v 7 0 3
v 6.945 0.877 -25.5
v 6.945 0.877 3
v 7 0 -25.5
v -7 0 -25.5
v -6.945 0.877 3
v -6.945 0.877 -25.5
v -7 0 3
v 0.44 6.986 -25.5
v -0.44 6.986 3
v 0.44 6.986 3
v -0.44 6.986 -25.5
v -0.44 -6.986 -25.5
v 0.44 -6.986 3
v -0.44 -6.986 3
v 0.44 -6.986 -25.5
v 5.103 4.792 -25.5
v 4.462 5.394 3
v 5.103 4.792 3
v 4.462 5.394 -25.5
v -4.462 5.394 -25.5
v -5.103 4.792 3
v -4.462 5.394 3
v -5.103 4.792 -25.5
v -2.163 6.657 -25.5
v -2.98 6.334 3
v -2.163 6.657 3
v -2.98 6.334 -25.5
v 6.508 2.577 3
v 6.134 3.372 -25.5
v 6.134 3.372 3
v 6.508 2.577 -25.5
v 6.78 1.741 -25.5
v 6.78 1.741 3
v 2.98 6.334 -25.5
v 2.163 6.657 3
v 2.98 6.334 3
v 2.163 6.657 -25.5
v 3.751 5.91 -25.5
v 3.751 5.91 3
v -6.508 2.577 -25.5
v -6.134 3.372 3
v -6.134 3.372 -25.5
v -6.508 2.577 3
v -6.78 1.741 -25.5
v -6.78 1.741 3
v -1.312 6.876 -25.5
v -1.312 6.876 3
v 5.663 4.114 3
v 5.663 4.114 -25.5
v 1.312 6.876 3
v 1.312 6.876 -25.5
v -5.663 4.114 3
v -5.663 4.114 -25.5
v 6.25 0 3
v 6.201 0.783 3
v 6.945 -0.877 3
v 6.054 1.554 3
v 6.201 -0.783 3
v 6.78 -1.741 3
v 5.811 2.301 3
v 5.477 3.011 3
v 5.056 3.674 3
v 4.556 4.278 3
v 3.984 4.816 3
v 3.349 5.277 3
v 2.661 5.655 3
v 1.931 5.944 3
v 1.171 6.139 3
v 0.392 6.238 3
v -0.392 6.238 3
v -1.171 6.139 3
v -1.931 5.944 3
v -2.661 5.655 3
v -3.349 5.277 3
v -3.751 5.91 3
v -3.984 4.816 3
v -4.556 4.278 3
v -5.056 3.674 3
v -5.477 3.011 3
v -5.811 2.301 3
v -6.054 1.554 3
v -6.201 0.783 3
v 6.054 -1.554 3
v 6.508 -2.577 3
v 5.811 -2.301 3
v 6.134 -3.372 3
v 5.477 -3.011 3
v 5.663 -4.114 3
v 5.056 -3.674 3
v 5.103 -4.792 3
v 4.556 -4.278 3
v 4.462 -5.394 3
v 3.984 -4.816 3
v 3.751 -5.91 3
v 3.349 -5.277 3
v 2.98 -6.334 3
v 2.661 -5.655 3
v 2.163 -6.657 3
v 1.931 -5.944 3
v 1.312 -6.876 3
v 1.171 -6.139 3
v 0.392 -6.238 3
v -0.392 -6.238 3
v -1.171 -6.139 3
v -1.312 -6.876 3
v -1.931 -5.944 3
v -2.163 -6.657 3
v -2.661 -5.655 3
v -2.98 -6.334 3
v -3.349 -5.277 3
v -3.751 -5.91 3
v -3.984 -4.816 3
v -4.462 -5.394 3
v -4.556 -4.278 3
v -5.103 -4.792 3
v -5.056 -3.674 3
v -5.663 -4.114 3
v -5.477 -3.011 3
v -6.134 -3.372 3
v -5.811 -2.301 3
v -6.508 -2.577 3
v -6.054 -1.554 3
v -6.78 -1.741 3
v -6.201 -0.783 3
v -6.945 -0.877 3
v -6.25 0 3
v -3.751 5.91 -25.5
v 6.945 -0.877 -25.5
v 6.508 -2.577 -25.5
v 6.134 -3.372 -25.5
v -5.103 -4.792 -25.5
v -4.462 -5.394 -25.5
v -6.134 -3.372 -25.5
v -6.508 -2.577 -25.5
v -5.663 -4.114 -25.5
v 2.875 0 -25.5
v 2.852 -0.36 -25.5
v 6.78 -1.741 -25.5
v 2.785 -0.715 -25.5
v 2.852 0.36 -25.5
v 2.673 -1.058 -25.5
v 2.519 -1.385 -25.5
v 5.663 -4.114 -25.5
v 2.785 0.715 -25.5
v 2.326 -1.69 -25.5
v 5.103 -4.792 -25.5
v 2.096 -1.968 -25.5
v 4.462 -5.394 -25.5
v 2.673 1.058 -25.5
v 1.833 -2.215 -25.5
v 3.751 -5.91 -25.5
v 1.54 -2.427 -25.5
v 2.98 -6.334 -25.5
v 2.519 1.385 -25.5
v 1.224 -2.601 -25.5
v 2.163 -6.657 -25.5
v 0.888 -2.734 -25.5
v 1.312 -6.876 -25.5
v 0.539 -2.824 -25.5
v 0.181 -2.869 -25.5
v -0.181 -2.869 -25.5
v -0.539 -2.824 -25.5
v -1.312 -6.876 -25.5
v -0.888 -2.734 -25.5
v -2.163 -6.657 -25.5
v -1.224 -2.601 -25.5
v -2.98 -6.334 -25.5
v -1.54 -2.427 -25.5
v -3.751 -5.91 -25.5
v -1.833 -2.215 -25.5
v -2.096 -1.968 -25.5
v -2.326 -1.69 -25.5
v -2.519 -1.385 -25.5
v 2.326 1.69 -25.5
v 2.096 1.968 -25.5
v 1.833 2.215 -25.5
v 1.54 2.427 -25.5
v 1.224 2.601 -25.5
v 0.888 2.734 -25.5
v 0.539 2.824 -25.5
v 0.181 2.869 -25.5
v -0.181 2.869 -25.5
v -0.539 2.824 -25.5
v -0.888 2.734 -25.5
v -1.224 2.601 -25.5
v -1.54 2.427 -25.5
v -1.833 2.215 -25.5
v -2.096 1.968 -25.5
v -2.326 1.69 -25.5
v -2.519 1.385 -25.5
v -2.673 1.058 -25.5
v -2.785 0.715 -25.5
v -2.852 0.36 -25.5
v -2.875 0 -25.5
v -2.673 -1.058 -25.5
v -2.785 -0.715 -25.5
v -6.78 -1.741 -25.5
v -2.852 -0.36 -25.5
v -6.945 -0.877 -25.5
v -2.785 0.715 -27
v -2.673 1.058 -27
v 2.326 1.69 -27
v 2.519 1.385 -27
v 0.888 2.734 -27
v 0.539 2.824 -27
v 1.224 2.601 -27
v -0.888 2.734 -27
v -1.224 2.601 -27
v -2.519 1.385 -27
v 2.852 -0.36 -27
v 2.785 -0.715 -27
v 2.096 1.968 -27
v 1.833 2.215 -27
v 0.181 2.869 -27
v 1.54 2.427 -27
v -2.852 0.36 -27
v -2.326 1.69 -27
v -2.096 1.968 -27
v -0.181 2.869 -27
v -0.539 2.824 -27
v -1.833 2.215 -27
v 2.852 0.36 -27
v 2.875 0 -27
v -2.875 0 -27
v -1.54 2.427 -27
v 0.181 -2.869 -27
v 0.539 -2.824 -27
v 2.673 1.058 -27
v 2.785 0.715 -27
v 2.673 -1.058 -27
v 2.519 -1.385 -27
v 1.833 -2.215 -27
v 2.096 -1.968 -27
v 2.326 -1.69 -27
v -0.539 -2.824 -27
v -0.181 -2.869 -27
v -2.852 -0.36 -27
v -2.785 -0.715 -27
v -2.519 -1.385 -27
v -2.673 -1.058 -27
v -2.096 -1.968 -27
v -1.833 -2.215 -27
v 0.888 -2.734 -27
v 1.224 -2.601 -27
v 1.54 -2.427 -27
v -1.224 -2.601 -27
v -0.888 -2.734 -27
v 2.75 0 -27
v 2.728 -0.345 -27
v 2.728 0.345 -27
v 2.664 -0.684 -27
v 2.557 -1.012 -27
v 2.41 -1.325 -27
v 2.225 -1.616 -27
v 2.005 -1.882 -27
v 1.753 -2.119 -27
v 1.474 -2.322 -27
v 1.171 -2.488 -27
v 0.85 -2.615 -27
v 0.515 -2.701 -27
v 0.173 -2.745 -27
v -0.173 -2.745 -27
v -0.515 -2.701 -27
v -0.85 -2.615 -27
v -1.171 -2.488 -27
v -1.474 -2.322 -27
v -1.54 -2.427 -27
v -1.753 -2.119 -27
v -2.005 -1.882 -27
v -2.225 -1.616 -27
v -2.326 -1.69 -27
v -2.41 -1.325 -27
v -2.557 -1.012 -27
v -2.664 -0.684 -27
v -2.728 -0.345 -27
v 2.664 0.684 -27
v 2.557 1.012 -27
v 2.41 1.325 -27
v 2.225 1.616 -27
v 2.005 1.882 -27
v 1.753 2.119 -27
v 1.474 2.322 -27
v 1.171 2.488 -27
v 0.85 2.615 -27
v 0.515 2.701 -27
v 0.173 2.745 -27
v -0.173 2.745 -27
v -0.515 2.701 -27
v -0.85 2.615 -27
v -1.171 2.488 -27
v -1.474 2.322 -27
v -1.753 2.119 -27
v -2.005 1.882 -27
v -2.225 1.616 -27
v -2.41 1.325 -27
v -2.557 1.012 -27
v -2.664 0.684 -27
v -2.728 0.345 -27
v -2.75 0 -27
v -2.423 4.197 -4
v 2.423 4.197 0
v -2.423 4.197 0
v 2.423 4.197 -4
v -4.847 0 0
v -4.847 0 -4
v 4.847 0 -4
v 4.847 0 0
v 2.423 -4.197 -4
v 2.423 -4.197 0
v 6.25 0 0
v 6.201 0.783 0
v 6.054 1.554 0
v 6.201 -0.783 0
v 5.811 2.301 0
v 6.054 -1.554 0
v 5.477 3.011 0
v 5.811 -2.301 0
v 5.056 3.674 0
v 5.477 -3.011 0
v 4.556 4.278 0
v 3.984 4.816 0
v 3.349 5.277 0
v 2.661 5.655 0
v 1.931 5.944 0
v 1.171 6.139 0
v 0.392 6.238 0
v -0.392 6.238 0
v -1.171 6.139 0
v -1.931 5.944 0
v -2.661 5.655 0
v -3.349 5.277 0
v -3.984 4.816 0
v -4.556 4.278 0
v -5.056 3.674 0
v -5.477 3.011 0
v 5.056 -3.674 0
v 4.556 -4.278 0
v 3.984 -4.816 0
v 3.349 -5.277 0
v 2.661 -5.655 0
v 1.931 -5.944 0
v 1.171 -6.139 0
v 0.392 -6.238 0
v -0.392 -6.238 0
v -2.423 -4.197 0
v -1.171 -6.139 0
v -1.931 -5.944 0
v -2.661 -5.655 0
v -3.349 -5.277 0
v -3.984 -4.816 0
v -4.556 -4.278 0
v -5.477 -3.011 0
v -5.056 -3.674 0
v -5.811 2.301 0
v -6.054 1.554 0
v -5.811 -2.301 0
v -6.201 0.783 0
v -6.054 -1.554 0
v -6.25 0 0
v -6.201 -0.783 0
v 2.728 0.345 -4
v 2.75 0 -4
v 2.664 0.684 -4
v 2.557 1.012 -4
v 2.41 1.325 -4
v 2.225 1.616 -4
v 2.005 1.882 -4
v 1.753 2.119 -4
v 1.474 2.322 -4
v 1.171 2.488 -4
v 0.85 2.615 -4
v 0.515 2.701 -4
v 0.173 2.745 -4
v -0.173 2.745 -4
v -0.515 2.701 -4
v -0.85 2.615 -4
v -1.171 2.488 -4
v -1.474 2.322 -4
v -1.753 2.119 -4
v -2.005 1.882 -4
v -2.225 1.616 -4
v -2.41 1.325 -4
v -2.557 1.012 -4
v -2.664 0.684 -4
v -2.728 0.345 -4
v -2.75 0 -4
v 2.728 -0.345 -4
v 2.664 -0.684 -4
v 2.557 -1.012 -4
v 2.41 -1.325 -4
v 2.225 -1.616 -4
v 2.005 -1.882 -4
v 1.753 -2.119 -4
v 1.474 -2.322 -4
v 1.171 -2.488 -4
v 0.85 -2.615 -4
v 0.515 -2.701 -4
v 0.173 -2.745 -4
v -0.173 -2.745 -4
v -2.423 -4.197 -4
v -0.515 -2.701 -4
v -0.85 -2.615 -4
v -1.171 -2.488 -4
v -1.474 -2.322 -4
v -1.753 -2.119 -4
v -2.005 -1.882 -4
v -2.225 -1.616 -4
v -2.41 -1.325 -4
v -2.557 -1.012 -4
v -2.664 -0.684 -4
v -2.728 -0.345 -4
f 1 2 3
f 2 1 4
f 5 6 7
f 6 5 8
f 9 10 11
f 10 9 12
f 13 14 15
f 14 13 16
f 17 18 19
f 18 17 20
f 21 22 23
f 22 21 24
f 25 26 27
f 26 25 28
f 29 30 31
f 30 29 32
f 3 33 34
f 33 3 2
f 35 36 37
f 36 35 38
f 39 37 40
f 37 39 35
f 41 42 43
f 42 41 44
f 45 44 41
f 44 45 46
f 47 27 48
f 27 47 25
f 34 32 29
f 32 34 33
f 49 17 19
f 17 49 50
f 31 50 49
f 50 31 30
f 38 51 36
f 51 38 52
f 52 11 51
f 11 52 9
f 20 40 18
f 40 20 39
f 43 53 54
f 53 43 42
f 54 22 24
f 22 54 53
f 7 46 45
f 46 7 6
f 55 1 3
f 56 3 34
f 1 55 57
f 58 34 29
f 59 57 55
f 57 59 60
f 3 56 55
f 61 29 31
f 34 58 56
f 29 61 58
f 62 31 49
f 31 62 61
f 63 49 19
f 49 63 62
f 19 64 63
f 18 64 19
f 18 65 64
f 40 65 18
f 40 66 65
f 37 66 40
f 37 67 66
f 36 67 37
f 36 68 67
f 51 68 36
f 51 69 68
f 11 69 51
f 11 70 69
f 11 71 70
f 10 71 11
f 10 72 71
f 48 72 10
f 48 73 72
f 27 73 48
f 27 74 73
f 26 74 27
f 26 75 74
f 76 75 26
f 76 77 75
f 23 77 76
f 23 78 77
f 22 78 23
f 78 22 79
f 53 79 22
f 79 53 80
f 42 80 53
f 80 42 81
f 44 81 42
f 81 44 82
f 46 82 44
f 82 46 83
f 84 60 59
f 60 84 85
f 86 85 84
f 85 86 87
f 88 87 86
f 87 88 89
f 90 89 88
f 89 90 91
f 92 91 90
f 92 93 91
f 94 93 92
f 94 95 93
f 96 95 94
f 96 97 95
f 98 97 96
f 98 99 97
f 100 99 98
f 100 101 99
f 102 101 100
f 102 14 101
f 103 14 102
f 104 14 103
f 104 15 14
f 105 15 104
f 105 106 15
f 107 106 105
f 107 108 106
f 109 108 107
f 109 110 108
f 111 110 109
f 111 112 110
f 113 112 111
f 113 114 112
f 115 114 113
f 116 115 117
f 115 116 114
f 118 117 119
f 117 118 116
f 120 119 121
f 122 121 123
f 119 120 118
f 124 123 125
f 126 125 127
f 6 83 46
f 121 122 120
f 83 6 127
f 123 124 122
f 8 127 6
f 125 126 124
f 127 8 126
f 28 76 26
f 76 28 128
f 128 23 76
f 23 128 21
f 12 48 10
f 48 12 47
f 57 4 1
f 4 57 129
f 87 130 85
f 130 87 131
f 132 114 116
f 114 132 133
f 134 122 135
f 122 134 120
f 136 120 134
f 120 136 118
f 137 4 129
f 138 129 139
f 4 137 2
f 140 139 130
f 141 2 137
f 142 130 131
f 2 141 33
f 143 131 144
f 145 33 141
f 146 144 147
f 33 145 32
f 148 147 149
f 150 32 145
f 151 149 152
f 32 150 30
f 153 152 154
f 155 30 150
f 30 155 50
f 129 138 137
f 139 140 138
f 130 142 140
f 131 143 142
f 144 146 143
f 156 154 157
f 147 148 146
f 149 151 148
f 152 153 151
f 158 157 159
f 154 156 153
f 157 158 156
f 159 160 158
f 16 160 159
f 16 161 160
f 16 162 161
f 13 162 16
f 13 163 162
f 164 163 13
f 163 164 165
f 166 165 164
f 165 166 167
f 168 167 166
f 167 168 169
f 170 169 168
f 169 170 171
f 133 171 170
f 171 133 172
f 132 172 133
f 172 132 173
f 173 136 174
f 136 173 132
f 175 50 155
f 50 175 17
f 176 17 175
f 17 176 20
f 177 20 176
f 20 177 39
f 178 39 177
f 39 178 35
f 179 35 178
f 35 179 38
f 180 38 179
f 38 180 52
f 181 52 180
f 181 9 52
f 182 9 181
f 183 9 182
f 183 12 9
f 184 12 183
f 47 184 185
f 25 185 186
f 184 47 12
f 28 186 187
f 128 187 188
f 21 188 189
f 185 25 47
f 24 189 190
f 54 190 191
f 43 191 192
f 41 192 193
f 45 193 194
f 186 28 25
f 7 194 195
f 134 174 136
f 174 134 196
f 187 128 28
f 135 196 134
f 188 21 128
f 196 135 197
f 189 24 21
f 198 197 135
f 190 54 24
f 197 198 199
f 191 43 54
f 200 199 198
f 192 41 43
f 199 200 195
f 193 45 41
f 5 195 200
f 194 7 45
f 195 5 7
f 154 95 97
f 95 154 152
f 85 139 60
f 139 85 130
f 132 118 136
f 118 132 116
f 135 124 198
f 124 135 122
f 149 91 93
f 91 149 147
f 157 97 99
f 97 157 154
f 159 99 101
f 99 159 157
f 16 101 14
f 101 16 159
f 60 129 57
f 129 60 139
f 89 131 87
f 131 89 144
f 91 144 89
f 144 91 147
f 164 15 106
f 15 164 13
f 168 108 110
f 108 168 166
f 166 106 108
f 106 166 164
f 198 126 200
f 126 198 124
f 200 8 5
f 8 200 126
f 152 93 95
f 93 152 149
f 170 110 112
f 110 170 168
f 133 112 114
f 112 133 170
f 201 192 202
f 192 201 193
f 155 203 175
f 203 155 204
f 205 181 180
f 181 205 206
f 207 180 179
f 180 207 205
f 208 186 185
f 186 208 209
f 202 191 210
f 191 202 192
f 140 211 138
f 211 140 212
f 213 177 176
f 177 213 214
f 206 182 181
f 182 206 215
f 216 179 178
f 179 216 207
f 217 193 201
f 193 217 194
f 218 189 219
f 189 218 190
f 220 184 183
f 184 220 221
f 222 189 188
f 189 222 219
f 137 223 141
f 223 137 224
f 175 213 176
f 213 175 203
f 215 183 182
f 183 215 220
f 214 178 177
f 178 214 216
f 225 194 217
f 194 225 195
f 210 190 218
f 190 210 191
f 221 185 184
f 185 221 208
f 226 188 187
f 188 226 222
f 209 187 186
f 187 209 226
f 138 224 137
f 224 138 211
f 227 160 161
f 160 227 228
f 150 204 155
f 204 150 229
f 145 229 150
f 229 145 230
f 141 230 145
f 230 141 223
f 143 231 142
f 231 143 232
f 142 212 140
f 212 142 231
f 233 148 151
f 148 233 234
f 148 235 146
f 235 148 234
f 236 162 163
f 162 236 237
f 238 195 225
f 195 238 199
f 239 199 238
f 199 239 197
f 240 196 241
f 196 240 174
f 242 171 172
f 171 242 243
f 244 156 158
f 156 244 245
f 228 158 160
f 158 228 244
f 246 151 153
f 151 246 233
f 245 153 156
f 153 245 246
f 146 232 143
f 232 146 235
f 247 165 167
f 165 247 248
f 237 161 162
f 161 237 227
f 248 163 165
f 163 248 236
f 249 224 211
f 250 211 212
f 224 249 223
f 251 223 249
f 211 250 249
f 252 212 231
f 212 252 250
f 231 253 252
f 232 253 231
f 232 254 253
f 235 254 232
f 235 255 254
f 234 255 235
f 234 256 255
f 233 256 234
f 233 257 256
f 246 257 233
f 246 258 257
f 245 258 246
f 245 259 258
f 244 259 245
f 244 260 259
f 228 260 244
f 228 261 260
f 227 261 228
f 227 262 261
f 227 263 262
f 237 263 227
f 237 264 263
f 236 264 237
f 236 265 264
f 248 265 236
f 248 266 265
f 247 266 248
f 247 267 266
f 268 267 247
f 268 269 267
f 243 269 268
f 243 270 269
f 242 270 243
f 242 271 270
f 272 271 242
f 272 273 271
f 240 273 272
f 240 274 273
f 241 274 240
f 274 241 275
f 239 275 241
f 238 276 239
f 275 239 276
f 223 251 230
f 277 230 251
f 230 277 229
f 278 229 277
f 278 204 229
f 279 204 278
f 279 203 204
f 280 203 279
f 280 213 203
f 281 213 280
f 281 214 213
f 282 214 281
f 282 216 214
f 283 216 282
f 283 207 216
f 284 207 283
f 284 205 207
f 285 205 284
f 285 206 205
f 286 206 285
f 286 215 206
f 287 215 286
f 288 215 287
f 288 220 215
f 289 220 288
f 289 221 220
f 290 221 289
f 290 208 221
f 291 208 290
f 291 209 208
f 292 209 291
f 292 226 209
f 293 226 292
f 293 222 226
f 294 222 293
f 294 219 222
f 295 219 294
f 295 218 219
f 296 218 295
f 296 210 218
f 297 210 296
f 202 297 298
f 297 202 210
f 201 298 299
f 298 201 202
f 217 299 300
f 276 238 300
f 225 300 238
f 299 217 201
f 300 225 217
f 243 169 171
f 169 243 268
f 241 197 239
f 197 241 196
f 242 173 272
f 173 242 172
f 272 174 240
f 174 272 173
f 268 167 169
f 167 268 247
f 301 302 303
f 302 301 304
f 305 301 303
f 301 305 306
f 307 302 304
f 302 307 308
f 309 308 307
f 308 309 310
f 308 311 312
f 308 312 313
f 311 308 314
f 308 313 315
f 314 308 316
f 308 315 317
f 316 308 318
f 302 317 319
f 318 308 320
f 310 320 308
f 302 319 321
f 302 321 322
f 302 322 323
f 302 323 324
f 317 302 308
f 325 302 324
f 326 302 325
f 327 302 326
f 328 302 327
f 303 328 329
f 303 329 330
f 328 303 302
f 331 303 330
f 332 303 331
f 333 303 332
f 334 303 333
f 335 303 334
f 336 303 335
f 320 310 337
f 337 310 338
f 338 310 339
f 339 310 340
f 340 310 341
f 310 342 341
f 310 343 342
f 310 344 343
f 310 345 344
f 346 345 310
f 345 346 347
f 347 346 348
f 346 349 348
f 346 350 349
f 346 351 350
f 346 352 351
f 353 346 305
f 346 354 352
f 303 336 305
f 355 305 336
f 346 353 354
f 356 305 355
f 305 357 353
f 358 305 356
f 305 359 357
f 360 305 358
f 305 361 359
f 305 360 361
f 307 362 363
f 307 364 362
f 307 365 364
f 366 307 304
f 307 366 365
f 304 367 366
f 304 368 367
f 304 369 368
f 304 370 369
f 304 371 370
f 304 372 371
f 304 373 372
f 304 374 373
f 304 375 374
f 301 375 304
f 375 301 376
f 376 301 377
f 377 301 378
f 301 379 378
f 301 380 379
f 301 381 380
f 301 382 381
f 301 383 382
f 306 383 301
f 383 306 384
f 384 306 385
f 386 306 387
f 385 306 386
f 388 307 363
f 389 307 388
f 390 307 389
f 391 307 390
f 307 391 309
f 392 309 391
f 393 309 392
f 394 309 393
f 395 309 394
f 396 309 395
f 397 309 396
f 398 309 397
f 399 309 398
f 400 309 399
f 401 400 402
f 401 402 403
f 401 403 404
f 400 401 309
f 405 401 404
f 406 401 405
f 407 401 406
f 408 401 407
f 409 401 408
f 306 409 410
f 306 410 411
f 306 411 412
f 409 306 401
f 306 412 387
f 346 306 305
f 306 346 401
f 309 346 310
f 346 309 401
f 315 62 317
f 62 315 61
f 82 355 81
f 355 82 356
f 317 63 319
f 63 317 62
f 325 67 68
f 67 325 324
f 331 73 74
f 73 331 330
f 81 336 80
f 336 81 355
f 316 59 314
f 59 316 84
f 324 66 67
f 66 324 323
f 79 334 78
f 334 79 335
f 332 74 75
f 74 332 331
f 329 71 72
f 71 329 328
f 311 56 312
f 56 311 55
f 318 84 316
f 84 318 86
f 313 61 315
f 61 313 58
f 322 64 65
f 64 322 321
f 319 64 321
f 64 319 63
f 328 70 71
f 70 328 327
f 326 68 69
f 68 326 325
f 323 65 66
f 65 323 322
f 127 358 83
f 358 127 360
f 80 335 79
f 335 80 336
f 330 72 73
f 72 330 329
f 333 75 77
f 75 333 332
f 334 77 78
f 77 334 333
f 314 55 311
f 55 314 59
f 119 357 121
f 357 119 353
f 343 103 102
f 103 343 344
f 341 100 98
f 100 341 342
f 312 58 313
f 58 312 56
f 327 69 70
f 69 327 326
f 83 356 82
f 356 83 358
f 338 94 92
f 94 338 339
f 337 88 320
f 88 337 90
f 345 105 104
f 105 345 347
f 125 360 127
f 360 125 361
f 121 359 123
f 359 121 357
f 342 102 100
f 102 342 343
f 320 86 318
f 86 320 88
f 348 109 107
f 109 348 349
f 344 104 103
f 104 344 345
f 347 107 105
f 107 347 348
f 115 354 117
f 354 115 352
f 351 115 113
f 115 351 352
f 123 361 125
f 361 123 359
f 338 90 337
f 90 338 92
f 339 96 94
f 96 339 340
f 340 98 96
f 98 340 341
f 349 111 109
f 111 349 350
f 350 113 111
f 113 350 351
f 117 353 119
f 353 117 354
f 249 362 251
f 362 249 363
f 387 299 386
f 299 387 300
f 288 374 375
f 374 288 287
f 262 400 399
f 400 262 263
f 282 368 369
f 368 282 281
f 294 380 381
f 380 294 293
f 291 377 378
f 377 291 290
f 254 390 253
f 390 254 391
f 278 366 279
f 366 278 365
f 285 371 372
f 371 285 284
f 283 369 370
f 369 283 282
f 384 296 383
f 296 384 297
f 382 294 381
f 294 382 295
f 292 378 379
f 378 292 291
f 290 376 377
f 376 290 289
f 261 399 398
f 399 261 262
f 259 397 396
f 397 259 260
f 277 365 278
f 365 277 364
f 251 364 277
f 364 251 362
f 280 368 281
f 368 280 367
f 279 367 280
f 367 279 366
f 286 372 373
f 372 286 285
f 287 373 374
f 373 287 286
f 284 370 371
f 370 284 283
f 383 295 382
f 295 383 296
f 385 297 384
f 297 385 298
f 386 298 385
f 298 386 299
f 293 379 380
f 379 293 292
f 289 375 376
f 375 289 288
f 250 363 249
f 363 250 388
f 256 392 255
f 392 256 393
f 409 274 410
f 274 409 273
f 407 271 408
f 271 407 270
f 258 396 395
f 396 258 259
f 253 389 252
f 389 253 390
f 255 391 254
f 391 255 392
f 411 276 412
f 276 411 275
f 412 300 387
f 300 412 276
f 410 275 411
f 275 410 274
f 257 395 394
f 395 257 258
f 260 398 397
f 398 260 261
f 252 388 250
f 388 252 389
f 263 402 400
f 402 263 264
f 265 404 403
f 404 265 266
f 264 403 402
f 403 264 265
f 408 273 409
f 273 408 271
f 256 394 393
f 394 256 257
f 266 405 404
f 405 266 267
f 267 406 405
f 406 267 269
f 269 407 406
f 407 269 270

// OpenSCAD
$fn = 50;

difference() {
	union() {
		translate(v = [0, 0, -25.5]) {
			cylinder(h = 28.5, r = 7.0);
		}
		#translate(v = [0, 0, -27.0]) {
			cylinder(h = 27, r = 2.875);
		}
	}
	union() {
		translate(v = [0, 0, 0]) {
			rotate(a = [0, 0, 0]) {
				difference() {
					union() {
						translate(v = [0, 0, -4]) {
							linear_extrude(height = 4) {
								polygon(points = [[4.8468, 0.0], [2.4234000000000004, 4.197451927062417], [-2.423399999999999, 4.197451927062417], [-4.8468, 5.935618106107392e-16], [-2.423400000000002, -4.197451927062416], [2.423399999999997, -4.197451927062419]]);
							}
						}
					}
					union();
				}
			}
		}
		#cylinder(h = 3, r = 6.25);
		#translate(v = [0, 0, -100.0]) {
			cylinder(h = 200, r = 2.75);
		}
	}
}
